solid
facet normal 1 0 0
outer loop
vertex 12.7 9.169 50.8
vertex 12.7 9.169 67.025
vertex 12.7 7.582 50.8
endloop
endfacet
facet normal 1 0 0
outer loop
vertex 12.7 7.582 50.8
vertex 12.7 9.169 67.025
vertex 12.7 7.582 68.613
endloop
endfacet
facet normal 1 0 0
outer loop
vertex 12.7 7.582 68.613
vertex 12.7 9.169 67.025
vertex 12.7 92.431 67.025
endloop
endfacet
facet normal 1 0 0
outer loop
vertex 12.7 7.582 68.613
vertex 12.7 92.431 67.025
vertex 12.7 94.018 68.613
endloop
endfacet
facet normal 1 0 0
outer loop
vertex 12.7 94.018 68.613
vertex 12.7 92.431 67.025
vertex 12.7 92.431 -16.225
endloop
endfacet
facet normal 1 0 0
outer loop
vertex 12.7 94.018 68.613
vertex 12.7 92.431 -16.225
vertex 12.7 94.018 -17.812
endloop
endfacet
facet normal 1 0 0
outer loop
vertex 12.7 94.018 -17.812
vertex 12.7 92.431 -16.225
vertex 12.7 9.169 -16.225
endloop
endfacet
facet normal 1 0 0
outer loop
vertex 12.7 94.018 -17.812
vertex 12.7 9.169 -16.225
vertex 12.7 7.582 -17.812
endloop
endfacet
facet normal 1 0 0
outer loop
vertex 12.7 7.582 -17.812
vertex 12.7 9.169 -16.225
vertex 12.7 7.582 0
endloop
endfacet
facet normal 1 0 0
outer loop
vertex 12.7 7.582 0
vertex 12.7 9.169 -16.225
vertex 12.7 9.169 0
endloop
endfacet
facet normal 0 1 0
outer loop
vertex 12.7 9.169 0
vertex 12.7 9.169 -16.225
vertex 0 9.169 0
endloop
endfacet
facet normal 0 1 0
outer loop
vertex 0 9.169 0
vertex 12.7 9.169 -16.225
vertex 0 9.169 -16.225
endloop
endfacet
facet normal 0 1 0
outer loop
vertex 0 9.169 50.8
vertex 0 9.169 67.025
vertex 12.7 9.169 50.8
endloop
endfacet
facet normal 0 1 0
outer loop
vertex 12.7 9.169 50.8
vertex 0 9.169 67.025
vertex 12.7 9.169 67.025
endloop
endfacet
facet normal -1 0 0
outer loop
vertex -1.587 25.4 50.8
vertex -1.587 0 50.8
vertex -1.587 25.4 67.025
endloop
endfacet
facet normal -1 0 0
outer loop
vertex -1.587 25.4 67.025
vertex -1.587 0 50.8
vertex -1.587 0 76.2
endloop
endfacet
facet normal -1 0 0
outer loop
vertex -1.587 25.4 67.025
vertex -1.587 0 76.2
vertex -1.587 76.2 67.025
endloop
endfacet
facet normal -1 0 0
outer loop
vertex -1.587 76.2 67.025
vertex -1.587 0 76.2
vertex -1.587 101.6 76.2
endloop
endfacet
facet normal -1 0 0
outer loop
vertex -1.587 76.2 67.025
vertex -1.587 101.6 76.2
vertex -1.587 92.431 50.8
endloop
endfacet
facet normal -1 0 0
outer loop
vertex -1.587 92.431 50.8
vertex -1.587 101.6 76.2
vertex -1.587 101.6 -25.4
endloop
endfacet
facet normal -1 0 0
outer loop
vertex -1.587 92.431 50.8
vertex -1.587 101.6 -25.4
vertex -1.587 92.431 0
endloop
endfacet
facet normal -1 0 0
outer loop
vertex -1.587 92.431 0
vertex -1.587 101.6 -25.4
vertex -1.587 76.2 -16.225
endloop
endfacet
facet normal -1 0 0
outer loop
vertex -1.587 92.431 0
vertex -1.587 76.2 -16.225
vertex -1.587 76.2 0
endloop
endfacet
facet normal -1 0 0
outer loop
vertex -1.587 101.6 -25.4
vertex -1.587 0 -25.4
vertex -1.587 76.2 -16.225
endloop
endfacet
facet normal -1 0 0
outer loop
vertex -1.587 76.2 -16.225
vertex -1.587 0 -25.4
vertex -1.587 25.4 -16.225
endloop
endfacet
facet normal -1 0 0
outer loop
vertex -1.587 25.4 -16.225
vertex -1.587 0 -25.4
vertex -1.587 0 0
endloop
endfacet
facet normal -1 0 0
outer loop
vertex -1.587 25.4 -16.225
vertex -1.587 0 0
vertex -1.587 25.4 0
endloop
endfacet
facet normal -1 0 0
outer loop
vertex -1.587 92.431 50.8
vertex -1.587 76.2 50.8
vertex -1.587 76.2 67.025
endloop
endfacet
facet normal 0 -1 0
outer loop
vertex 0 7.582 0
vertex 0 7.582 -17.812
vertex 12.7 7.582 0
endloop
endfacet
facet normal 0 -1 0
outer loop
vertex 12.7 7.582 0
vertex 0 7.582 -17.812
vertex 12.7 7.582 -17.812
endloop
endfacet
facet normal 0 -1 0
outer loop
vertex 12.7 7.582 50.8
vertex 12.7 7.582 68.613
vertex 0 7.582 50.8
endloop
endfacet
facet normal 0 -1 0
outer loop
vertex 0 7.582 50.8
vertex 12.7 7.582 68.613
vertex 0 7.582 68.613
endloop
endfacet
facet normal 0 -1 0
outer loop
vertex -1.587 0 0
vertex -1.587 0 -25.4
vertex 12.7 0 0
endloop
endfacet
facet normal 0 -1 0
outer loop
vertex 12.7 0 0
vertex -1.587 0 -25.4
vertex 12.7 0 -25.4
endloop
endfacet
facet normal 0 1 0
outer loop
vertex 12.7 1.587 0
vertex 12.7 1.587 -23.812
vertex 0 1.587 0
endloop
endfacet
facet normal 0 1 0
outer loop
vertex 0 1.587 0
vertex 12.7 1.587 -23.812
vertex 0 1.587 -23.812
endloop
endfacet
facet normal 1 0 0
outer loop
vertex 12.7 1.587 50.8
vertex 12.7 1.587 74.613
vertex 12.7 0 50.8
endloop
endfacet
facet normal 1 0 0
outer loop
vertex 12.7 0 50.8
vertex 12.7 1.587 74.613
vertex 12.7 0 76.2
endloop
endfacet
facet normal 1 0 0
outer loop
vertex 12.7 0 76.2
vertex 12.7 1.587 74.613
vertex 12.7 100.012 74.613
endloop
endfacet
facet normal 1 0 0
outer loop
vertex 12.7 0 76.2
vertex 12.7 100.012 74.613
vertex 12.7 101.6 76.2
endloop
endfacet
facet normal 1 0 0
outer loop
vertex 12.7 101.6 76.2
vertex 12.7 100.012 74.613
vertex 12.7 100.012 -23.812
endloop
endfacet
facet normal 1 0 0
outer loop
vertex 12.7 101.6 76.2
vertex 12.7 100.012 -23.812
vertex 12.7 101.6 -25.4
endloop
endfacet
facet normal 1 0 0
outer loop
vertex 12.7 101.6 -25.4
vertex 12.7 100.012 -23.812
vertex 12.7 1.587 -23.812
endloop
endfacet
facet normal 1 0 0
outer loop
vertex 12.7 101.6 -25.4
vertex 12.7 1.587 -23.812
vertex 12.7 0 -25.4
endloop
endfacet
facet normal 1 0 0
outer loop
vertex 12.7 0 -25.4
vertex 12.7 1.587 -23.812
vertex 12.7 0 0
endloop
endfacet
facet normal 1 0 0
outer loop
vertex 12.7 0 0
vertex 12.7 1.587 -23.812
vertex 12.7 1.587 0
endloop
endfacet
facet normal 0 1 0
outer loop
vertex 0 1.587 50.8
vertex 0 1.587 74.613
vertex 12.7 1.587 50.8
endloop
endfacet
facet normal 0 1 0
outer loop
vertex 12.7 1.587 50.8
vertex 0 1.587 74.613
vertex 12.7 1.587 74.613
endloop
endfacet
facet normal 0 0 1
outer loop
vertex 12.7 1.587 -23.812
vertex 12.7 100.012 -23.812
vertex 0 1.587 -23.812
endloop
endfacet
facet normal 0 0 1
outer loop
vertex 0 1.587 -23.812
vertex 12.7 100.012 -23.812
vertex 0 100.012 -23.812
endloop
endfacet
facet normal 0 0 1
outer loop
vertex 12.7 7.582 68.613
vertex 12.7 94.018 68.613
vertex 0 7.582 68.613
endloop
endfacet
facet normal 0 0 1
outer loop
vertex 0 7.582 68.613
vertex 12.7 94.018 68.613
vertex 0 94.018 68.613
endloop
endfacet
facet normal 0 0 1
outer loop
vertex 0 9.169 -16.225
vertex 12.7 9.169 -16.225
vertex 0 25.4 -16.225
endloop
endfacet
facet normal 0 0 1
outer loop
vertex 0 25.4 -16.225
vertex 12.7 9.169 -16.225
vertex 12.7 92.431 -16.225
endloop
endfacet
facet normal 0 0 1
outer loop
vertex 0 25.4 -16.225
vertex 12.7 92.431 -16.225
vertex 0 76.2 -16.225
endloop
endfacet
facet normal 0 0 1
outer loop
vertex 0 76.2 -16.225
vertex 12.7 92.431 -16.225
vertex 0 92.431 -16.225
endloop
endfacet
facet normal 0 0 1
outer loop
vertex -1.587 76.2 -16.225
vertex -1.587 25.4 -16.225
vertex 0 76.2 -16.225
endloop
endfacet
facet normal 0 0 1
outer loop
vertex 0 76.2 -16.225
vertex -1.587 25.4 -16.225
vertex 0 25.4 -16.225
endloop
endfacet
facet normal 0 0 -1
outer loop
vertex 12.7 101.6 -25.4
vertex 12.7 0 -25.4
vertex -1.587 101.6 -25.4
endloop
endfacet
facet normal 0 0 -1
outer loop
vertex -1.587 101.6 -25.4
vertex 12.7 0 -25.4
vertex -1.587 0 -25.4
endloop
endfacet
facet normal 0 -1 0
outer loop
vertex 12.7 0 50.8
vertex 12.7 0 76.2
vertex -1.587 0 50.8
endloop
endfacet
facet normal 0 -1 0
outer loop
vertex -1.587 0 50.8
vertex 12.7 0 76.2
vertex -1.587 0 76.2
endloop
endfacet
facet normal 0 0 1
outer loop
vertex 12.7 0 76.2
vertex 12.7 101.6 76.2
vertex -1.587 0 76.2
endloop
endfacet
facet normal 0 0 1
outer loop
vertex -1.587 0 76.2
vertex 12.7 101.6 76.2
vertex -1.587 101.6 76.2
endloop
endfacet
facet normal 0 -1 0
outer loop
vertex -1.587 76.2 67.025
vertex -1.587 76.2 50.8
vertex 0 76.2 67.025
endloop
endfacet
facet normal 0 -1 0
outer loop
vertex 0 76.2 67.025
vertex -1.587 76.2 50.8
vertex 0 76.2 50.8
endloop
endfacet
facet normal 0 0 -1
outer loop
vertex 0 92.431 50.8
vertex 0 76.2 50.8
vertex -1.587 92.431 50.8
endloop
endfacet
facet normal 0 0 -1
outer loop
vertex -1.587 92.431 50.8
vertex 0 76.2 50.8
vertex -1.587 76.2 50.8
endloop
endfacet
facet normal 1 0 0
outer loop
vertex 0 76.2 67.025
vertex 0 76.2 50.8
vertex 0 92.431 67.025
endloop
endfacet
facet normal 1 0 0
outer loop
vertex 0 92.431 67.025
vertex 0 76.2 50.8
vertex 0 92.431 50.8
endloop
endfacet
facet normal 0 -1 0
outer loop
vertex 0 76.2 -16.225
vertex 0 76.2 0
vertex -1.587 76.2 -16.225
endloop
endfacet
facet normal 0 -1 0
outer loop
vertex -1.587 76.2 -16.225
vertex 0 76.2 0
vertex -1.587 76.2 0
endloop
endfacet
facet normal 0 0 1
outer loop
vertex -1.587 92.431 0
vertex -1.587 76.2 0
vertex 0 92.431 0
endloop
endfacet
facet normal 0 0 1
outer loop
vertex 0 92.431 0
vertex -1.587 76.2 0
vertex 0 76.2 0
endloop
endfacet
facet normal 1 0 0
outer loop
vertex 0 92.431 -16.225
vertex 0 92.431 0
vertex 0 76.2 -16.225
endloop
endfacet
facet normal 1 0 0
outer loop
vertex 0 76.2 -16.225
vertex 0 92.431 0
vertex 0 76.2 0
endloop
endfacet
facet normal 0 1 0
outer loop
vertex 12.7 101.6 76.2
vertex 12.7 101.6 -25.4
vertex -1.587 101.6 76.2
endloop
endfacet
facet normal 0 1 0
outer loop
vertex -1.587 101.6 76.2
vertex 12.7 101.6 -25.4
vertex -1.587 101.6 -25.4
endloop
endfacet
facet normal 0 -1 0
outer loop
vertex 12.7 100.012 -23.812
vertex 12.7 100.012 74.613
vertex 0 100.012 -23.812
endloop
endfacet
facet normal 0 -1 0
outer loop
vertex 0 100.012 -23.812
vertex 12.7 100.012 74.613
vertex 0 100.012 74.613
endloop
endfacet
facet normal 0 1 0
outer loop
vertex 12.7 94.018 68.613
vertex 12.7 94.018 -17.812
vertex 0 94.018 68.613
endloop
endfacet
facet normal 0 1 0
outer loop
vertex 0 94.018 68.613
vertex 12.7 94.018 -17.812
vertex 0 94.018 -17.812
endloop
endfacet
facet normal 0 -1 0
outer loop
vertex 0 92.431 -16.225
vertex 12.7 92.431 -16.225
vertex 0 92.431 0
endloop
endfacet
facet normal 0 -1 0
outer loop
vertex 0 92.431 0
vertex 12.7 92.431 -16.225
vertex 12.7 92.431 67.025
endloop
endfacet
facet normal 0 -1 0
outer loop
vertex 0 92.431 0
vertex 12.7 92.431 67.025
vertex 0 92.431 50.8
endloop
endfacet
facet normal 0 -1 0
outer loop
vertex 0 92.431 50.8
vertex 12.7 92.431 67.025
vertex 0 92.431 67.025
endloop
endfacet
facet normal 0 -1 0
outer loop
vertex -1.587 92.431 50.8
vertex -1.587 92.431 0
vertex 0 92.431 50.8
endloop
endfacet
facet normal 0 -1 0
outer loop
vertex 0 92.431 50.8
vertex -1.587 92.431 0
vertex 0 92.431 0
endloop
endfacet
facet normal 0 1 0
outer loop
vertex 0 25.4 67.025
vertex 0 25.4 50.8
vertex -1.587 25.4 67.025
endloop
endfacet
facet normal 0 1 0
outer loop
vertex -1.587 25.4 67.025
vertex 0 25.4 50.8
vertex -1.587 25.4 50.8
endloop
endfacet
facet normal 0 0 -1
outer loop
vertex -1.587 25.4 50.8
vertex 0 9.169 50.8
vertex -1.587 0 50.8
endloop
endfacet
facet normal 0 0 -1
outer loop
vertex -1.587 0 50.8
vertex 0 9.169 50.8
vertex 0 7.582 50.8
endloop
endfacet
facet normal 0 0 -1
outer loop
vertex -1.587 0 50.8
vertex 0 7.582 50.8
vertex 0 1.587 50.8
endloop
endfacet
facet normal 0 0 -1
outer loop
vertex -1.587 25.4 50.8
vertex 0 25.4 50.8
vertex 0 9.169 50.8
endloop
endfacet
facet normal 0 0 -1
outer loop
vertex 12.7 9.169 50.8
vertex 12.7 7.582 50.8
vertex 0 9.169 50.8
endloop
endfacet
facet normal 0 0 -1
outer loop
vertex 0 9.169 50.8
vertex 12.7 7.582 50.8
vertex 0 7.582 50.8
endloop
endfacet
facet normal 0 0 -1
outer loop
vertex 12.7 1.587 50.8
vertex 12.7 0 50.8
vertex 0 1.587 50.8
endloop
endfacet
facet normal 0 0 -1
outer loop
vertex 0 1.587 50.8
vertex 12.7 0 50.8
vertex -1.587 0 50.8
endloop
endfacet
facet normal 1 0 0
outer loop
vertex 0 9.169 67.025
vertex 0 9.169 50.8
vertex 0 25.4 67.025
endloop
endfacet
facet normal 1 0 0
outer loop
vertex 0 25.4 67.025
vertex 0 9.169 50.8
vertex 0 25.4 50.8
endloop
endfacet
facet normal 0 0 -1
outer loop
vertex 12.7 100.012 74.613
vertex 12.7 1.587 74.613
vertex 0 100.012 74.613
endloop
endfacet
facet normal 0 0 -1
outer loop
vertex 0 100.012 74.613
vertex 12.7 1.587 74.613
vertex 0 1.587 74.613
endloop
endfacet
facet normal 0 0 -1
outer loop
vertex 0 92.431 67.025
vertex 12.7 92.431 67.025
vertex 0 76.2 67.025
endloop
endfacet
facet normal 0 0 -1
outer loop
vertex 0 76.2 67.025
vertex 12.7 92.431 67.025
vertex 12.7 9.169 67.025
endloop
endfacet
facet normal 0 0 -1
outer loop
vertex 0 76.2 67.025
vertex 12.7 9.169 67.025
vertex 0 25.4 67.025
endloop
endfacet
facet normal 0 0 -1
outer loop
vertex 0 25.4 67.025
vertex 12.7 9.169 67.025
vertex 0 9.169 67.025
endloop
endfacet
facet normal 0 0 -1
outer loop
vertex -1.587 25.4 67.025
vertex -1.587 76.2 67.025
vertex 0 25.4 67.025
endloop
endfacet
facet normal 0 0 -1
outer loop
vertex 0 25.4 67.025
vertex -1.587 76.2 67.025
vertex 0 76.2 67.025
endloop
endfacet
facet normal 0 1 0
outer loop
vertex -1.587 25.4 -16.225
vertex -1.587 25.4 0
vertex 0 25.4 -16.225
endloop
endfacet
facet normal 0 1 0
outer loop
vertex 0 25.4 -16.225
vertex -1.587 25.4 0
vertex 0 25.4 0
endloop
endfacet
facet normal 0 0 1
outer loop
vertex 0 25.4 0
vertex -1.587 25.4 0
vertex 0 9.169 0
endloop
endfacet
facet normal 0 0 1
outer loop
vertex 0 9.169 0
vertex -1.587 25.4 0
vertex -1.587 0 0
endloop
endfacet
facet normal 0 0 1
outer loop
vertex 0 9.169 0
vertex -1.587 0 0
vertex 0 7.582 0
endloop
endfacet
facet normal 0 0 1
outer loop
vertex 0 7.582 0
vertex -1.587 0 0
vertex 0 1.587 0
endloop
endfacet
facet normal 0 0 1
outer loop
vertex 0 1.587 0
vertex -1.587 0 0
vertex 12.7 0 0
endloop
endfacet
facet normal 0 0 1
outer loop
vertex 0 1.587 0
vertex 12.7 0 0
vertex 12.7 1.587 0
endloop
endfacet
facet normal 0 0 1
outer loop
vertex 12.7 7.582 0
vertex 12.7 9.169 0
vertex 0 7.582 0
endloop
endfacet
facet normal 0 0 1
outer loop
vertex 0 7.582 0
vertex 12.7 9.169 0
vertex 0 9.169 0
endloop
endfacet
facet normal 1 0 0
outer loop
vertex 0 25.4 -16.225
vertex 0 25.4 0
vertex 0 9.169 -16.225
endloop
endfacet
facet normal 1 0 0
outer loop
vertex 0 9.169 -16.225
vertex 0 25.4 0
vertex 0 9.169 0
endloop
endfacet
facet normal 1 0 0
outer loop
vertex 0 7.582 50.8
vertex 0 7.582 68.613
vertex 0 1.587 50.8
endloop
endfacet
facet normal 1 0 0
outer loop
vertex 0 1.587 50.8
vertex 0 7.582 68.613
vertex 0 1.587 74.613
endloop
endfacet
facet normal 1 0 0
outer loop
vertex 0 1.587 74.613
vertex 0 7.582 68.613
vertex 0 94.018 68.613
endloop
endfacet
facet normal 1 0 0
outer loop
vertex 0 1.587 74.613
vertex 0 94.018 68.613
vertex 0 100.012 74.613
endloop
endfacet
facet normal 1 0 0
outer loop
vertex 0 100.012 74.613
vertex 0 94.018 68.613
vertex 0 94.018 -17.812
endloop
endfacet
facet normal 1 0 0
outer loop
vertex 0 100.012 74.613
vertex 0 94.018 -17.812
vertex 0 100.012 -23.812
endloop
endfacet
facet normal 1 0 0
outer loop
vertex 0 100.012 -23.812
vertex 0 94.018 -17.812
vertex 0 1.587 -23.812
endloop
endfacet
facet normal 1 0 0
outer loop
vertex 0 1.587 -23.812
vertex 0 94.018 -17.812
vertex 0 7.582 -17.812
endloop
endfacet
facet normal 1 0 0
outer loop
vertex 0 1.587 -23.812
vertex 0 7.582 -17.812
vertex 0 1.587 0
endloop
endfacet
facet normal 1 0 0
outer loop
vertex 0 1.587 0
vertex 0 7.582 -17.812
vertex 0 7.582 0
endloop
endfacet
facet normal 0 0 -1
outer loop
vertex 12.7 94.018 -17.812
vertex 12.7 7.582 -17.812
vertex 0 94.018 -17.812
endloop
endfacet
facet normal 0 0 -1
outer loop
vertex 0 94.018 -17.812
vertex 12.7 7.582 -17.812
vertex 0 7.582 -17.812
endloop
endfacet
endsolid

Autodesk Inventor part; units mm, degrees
ref_plane "YZ Plane" through (0, 0, 0) normal (1, 0, 0) x (0, 1, 0)
ref_plane "XZ Plane" through (0, 0, 0) normal (0, 1, 0) x (-1, 0, 0)
ref_plane "XY Plane" through (0, 0, 0) normal (0, 0, 1) x (1, 0, 0)
sketch "Sketch3" plane through (0, 0, 0) normal (1, 0, 0) x (0, 1, 0)
  line L0 (0, 0) -> (25.4, 0)
  line L1 (25.4, 0) -> (25.4, -25.4)
  line L2 (25.4, -25.4) -> (0, -25.4)
  line L3 (0, -25.4) -> (0, 0)
  line L4 (25.4, -23.8125) -> (1.5875, -23.8125)
  line L5 (1.5875, -23.8125) -> (1.5875, 0)
  line L6 (7.5819, -17.8125) -> (25.4, -17.8125)
  line L7 (7.5819, 0) -> (7.5819, -17.8125)
  line L8 (9.1694, 1) -> (9.1694, -16.225)
  line L9 (9.1694, -16.225) -> (25.4, -16.225)
  point P0 (25.4, -16.225)
  point P1 (9.1694, 0)
  dimension "d15" = 25.4
  dimension "d16" = 25.4
  dimension "d17" = 1.5875
  dimension "d18" = 6
  dimension "d19" = 1.5875
  dimension "d24" = 5.9944
extrude "Extrusion3" add sketch "Sketch3" along normal blind 25.4 contours L0 L5 L4 L1 L2 L3 | L0 L8 L9 L1 L6 L7
sketch "Sketch4" plane through (0, 0, 0) normal (-1, 0, 0) x (0, 0, 1)
  line L0 (-25.4, 0) -> (-25.4, 25.4) projected
  line L1 (-25.4, 25.4) -> (0, 25.4)
  line L2 (0, 25.4) -> (0, 0)
  line L3 (0, 0) -> (-25.4, 0)
  line L4 (-25.4, 0) -> (-25.4, 25.4)
extrude "Extrusion4" add sketch "Sketch4" along normal blind 1.5875
sketch "Sketch5" plane through (25.4, 7.5819, 0) normal (0, 0, 1) x (1, 0, 0)
  line L0 (-25.4, 0) -> (0, 0) projected
  line L1 (0, 1.5875) -> (0, 0) projected
  line L2 (-25.4, 1.5875) -> (0, 1.5875) projected
  line L3 (-25.4, 1.5875) -> (-25.4, 17.8181) projected
  line L4 (-25.4, 17.8181) -> (-26.9875, 17.8181) projected
  line L5 (-26.9875, -7.5819) -> (-26.9875, 17.8181) projected
  line L6 (-26.9875, -7.5819) -> (0, -7.5819) projected
  line L7 (0, -5.9944) -> (0, -7.5819) projected
  line L8 (-25.4, -5.9944) -> (0, -5.9944) projected
  line L9 (-25.4, -5.9944) -> (-25.4, 0) projected
  line L10 (-26.9875, 1.5875) -> (-25.4, 1.5875)
  point P0 (-25.4, -7.5819)
extrude "Extrusion5" add sketch "Sketch5" along normal blind 25.4 contours L9 L8 L7 L6 L5 L10 L2 L1 L0
sketch "Sketch6" plane through (25.4, 25.4, -16.225) normal (0, 1, 0) x (1, 0, 0)
  line L0 (-25.4, 0) -> (0, 0) projected
  line L1 (0, 1.5875) -> (0, 0) projected
  line L2 (-25.4, 1.5875) -> (0, 1.5875) projected
  line L3 (-25.4, 1.5875) -> (-25.4, 7.5875) projected
  line L4 (-25.4, 7.5875) -> (0, 7.5875) projected
  line L5 (0, 9.175) -> (0, 7.5875) projected
  line L6 (-26.9875, 9.175) -> (0, 9.175) projected
  line L7 (-26.9875, -16.225) -> (-26.9875, 9.175) projected
  line L8 (-25.4, -16.225) -> (-26.9875, -16.225) projected
  line L9 (-25.4, -16.225) -> (-25.4, 0) projected
  line L10 (-26.9875, 0) -> (-25.4, 0)
  point P0 (-25.4, -16.225)
extrude "Extrusion6" add sketch "Sketch6" along normal blind 25.4 contours L10 L7 L6 L5 L4 L3 L2 L1 L0
mirror "Mirror1" about plane through (11.9062, 4.5847, 25.4) normal (0, 0, 1)
mirror "Mirror2" about plane through (11.9062, 50.8, -20.8125) normal (0, 1, 0)
sketch "Sketch7" plane through (-1.5875, 0, 76.2) normal (0, 0, 1) x (1, 0, 0)
  line L0 (26.9875, 0) -> (0, 0) projected
  line L1 (26.9875, 0) -> (14.2875, 0)
  line L2 (14.2875, 0) -> (14.2875, 107.076)
  line L3 (14.2875, 107.076) -> (26.9875, 107.076)
  line L4 (26.9875, 107.076) -> (26.9875, 0)
  point P0 (1.5875, 0)
  dimension "d29" = 12.7
extrude "Extrusion7" cut sketch "Sketch7" against normal blind 161.925
sketch "Sketch8" plane through (-1.5875, 0, 0) normal (-1, 0, 0) x (0, 0, 1)
  line L0 (0, 9.1694) -> (50.8, 9.1694) projected
  line L1 (0, 9.1694) -> (50.8, 9.1694)
  line L2 (50.8, 9.1694) -> (50.8, -7.9488)
  line L3 (50.8, -7.9488) -> (0, -7.9488)
  line L4 (0, -7.9488) -> (0, 9.1694)
  point P0 (0, 0)
extrude "Extrusion8" cut sketch "Sketch8" against normal blind 161.925
properties part number "end cap"
